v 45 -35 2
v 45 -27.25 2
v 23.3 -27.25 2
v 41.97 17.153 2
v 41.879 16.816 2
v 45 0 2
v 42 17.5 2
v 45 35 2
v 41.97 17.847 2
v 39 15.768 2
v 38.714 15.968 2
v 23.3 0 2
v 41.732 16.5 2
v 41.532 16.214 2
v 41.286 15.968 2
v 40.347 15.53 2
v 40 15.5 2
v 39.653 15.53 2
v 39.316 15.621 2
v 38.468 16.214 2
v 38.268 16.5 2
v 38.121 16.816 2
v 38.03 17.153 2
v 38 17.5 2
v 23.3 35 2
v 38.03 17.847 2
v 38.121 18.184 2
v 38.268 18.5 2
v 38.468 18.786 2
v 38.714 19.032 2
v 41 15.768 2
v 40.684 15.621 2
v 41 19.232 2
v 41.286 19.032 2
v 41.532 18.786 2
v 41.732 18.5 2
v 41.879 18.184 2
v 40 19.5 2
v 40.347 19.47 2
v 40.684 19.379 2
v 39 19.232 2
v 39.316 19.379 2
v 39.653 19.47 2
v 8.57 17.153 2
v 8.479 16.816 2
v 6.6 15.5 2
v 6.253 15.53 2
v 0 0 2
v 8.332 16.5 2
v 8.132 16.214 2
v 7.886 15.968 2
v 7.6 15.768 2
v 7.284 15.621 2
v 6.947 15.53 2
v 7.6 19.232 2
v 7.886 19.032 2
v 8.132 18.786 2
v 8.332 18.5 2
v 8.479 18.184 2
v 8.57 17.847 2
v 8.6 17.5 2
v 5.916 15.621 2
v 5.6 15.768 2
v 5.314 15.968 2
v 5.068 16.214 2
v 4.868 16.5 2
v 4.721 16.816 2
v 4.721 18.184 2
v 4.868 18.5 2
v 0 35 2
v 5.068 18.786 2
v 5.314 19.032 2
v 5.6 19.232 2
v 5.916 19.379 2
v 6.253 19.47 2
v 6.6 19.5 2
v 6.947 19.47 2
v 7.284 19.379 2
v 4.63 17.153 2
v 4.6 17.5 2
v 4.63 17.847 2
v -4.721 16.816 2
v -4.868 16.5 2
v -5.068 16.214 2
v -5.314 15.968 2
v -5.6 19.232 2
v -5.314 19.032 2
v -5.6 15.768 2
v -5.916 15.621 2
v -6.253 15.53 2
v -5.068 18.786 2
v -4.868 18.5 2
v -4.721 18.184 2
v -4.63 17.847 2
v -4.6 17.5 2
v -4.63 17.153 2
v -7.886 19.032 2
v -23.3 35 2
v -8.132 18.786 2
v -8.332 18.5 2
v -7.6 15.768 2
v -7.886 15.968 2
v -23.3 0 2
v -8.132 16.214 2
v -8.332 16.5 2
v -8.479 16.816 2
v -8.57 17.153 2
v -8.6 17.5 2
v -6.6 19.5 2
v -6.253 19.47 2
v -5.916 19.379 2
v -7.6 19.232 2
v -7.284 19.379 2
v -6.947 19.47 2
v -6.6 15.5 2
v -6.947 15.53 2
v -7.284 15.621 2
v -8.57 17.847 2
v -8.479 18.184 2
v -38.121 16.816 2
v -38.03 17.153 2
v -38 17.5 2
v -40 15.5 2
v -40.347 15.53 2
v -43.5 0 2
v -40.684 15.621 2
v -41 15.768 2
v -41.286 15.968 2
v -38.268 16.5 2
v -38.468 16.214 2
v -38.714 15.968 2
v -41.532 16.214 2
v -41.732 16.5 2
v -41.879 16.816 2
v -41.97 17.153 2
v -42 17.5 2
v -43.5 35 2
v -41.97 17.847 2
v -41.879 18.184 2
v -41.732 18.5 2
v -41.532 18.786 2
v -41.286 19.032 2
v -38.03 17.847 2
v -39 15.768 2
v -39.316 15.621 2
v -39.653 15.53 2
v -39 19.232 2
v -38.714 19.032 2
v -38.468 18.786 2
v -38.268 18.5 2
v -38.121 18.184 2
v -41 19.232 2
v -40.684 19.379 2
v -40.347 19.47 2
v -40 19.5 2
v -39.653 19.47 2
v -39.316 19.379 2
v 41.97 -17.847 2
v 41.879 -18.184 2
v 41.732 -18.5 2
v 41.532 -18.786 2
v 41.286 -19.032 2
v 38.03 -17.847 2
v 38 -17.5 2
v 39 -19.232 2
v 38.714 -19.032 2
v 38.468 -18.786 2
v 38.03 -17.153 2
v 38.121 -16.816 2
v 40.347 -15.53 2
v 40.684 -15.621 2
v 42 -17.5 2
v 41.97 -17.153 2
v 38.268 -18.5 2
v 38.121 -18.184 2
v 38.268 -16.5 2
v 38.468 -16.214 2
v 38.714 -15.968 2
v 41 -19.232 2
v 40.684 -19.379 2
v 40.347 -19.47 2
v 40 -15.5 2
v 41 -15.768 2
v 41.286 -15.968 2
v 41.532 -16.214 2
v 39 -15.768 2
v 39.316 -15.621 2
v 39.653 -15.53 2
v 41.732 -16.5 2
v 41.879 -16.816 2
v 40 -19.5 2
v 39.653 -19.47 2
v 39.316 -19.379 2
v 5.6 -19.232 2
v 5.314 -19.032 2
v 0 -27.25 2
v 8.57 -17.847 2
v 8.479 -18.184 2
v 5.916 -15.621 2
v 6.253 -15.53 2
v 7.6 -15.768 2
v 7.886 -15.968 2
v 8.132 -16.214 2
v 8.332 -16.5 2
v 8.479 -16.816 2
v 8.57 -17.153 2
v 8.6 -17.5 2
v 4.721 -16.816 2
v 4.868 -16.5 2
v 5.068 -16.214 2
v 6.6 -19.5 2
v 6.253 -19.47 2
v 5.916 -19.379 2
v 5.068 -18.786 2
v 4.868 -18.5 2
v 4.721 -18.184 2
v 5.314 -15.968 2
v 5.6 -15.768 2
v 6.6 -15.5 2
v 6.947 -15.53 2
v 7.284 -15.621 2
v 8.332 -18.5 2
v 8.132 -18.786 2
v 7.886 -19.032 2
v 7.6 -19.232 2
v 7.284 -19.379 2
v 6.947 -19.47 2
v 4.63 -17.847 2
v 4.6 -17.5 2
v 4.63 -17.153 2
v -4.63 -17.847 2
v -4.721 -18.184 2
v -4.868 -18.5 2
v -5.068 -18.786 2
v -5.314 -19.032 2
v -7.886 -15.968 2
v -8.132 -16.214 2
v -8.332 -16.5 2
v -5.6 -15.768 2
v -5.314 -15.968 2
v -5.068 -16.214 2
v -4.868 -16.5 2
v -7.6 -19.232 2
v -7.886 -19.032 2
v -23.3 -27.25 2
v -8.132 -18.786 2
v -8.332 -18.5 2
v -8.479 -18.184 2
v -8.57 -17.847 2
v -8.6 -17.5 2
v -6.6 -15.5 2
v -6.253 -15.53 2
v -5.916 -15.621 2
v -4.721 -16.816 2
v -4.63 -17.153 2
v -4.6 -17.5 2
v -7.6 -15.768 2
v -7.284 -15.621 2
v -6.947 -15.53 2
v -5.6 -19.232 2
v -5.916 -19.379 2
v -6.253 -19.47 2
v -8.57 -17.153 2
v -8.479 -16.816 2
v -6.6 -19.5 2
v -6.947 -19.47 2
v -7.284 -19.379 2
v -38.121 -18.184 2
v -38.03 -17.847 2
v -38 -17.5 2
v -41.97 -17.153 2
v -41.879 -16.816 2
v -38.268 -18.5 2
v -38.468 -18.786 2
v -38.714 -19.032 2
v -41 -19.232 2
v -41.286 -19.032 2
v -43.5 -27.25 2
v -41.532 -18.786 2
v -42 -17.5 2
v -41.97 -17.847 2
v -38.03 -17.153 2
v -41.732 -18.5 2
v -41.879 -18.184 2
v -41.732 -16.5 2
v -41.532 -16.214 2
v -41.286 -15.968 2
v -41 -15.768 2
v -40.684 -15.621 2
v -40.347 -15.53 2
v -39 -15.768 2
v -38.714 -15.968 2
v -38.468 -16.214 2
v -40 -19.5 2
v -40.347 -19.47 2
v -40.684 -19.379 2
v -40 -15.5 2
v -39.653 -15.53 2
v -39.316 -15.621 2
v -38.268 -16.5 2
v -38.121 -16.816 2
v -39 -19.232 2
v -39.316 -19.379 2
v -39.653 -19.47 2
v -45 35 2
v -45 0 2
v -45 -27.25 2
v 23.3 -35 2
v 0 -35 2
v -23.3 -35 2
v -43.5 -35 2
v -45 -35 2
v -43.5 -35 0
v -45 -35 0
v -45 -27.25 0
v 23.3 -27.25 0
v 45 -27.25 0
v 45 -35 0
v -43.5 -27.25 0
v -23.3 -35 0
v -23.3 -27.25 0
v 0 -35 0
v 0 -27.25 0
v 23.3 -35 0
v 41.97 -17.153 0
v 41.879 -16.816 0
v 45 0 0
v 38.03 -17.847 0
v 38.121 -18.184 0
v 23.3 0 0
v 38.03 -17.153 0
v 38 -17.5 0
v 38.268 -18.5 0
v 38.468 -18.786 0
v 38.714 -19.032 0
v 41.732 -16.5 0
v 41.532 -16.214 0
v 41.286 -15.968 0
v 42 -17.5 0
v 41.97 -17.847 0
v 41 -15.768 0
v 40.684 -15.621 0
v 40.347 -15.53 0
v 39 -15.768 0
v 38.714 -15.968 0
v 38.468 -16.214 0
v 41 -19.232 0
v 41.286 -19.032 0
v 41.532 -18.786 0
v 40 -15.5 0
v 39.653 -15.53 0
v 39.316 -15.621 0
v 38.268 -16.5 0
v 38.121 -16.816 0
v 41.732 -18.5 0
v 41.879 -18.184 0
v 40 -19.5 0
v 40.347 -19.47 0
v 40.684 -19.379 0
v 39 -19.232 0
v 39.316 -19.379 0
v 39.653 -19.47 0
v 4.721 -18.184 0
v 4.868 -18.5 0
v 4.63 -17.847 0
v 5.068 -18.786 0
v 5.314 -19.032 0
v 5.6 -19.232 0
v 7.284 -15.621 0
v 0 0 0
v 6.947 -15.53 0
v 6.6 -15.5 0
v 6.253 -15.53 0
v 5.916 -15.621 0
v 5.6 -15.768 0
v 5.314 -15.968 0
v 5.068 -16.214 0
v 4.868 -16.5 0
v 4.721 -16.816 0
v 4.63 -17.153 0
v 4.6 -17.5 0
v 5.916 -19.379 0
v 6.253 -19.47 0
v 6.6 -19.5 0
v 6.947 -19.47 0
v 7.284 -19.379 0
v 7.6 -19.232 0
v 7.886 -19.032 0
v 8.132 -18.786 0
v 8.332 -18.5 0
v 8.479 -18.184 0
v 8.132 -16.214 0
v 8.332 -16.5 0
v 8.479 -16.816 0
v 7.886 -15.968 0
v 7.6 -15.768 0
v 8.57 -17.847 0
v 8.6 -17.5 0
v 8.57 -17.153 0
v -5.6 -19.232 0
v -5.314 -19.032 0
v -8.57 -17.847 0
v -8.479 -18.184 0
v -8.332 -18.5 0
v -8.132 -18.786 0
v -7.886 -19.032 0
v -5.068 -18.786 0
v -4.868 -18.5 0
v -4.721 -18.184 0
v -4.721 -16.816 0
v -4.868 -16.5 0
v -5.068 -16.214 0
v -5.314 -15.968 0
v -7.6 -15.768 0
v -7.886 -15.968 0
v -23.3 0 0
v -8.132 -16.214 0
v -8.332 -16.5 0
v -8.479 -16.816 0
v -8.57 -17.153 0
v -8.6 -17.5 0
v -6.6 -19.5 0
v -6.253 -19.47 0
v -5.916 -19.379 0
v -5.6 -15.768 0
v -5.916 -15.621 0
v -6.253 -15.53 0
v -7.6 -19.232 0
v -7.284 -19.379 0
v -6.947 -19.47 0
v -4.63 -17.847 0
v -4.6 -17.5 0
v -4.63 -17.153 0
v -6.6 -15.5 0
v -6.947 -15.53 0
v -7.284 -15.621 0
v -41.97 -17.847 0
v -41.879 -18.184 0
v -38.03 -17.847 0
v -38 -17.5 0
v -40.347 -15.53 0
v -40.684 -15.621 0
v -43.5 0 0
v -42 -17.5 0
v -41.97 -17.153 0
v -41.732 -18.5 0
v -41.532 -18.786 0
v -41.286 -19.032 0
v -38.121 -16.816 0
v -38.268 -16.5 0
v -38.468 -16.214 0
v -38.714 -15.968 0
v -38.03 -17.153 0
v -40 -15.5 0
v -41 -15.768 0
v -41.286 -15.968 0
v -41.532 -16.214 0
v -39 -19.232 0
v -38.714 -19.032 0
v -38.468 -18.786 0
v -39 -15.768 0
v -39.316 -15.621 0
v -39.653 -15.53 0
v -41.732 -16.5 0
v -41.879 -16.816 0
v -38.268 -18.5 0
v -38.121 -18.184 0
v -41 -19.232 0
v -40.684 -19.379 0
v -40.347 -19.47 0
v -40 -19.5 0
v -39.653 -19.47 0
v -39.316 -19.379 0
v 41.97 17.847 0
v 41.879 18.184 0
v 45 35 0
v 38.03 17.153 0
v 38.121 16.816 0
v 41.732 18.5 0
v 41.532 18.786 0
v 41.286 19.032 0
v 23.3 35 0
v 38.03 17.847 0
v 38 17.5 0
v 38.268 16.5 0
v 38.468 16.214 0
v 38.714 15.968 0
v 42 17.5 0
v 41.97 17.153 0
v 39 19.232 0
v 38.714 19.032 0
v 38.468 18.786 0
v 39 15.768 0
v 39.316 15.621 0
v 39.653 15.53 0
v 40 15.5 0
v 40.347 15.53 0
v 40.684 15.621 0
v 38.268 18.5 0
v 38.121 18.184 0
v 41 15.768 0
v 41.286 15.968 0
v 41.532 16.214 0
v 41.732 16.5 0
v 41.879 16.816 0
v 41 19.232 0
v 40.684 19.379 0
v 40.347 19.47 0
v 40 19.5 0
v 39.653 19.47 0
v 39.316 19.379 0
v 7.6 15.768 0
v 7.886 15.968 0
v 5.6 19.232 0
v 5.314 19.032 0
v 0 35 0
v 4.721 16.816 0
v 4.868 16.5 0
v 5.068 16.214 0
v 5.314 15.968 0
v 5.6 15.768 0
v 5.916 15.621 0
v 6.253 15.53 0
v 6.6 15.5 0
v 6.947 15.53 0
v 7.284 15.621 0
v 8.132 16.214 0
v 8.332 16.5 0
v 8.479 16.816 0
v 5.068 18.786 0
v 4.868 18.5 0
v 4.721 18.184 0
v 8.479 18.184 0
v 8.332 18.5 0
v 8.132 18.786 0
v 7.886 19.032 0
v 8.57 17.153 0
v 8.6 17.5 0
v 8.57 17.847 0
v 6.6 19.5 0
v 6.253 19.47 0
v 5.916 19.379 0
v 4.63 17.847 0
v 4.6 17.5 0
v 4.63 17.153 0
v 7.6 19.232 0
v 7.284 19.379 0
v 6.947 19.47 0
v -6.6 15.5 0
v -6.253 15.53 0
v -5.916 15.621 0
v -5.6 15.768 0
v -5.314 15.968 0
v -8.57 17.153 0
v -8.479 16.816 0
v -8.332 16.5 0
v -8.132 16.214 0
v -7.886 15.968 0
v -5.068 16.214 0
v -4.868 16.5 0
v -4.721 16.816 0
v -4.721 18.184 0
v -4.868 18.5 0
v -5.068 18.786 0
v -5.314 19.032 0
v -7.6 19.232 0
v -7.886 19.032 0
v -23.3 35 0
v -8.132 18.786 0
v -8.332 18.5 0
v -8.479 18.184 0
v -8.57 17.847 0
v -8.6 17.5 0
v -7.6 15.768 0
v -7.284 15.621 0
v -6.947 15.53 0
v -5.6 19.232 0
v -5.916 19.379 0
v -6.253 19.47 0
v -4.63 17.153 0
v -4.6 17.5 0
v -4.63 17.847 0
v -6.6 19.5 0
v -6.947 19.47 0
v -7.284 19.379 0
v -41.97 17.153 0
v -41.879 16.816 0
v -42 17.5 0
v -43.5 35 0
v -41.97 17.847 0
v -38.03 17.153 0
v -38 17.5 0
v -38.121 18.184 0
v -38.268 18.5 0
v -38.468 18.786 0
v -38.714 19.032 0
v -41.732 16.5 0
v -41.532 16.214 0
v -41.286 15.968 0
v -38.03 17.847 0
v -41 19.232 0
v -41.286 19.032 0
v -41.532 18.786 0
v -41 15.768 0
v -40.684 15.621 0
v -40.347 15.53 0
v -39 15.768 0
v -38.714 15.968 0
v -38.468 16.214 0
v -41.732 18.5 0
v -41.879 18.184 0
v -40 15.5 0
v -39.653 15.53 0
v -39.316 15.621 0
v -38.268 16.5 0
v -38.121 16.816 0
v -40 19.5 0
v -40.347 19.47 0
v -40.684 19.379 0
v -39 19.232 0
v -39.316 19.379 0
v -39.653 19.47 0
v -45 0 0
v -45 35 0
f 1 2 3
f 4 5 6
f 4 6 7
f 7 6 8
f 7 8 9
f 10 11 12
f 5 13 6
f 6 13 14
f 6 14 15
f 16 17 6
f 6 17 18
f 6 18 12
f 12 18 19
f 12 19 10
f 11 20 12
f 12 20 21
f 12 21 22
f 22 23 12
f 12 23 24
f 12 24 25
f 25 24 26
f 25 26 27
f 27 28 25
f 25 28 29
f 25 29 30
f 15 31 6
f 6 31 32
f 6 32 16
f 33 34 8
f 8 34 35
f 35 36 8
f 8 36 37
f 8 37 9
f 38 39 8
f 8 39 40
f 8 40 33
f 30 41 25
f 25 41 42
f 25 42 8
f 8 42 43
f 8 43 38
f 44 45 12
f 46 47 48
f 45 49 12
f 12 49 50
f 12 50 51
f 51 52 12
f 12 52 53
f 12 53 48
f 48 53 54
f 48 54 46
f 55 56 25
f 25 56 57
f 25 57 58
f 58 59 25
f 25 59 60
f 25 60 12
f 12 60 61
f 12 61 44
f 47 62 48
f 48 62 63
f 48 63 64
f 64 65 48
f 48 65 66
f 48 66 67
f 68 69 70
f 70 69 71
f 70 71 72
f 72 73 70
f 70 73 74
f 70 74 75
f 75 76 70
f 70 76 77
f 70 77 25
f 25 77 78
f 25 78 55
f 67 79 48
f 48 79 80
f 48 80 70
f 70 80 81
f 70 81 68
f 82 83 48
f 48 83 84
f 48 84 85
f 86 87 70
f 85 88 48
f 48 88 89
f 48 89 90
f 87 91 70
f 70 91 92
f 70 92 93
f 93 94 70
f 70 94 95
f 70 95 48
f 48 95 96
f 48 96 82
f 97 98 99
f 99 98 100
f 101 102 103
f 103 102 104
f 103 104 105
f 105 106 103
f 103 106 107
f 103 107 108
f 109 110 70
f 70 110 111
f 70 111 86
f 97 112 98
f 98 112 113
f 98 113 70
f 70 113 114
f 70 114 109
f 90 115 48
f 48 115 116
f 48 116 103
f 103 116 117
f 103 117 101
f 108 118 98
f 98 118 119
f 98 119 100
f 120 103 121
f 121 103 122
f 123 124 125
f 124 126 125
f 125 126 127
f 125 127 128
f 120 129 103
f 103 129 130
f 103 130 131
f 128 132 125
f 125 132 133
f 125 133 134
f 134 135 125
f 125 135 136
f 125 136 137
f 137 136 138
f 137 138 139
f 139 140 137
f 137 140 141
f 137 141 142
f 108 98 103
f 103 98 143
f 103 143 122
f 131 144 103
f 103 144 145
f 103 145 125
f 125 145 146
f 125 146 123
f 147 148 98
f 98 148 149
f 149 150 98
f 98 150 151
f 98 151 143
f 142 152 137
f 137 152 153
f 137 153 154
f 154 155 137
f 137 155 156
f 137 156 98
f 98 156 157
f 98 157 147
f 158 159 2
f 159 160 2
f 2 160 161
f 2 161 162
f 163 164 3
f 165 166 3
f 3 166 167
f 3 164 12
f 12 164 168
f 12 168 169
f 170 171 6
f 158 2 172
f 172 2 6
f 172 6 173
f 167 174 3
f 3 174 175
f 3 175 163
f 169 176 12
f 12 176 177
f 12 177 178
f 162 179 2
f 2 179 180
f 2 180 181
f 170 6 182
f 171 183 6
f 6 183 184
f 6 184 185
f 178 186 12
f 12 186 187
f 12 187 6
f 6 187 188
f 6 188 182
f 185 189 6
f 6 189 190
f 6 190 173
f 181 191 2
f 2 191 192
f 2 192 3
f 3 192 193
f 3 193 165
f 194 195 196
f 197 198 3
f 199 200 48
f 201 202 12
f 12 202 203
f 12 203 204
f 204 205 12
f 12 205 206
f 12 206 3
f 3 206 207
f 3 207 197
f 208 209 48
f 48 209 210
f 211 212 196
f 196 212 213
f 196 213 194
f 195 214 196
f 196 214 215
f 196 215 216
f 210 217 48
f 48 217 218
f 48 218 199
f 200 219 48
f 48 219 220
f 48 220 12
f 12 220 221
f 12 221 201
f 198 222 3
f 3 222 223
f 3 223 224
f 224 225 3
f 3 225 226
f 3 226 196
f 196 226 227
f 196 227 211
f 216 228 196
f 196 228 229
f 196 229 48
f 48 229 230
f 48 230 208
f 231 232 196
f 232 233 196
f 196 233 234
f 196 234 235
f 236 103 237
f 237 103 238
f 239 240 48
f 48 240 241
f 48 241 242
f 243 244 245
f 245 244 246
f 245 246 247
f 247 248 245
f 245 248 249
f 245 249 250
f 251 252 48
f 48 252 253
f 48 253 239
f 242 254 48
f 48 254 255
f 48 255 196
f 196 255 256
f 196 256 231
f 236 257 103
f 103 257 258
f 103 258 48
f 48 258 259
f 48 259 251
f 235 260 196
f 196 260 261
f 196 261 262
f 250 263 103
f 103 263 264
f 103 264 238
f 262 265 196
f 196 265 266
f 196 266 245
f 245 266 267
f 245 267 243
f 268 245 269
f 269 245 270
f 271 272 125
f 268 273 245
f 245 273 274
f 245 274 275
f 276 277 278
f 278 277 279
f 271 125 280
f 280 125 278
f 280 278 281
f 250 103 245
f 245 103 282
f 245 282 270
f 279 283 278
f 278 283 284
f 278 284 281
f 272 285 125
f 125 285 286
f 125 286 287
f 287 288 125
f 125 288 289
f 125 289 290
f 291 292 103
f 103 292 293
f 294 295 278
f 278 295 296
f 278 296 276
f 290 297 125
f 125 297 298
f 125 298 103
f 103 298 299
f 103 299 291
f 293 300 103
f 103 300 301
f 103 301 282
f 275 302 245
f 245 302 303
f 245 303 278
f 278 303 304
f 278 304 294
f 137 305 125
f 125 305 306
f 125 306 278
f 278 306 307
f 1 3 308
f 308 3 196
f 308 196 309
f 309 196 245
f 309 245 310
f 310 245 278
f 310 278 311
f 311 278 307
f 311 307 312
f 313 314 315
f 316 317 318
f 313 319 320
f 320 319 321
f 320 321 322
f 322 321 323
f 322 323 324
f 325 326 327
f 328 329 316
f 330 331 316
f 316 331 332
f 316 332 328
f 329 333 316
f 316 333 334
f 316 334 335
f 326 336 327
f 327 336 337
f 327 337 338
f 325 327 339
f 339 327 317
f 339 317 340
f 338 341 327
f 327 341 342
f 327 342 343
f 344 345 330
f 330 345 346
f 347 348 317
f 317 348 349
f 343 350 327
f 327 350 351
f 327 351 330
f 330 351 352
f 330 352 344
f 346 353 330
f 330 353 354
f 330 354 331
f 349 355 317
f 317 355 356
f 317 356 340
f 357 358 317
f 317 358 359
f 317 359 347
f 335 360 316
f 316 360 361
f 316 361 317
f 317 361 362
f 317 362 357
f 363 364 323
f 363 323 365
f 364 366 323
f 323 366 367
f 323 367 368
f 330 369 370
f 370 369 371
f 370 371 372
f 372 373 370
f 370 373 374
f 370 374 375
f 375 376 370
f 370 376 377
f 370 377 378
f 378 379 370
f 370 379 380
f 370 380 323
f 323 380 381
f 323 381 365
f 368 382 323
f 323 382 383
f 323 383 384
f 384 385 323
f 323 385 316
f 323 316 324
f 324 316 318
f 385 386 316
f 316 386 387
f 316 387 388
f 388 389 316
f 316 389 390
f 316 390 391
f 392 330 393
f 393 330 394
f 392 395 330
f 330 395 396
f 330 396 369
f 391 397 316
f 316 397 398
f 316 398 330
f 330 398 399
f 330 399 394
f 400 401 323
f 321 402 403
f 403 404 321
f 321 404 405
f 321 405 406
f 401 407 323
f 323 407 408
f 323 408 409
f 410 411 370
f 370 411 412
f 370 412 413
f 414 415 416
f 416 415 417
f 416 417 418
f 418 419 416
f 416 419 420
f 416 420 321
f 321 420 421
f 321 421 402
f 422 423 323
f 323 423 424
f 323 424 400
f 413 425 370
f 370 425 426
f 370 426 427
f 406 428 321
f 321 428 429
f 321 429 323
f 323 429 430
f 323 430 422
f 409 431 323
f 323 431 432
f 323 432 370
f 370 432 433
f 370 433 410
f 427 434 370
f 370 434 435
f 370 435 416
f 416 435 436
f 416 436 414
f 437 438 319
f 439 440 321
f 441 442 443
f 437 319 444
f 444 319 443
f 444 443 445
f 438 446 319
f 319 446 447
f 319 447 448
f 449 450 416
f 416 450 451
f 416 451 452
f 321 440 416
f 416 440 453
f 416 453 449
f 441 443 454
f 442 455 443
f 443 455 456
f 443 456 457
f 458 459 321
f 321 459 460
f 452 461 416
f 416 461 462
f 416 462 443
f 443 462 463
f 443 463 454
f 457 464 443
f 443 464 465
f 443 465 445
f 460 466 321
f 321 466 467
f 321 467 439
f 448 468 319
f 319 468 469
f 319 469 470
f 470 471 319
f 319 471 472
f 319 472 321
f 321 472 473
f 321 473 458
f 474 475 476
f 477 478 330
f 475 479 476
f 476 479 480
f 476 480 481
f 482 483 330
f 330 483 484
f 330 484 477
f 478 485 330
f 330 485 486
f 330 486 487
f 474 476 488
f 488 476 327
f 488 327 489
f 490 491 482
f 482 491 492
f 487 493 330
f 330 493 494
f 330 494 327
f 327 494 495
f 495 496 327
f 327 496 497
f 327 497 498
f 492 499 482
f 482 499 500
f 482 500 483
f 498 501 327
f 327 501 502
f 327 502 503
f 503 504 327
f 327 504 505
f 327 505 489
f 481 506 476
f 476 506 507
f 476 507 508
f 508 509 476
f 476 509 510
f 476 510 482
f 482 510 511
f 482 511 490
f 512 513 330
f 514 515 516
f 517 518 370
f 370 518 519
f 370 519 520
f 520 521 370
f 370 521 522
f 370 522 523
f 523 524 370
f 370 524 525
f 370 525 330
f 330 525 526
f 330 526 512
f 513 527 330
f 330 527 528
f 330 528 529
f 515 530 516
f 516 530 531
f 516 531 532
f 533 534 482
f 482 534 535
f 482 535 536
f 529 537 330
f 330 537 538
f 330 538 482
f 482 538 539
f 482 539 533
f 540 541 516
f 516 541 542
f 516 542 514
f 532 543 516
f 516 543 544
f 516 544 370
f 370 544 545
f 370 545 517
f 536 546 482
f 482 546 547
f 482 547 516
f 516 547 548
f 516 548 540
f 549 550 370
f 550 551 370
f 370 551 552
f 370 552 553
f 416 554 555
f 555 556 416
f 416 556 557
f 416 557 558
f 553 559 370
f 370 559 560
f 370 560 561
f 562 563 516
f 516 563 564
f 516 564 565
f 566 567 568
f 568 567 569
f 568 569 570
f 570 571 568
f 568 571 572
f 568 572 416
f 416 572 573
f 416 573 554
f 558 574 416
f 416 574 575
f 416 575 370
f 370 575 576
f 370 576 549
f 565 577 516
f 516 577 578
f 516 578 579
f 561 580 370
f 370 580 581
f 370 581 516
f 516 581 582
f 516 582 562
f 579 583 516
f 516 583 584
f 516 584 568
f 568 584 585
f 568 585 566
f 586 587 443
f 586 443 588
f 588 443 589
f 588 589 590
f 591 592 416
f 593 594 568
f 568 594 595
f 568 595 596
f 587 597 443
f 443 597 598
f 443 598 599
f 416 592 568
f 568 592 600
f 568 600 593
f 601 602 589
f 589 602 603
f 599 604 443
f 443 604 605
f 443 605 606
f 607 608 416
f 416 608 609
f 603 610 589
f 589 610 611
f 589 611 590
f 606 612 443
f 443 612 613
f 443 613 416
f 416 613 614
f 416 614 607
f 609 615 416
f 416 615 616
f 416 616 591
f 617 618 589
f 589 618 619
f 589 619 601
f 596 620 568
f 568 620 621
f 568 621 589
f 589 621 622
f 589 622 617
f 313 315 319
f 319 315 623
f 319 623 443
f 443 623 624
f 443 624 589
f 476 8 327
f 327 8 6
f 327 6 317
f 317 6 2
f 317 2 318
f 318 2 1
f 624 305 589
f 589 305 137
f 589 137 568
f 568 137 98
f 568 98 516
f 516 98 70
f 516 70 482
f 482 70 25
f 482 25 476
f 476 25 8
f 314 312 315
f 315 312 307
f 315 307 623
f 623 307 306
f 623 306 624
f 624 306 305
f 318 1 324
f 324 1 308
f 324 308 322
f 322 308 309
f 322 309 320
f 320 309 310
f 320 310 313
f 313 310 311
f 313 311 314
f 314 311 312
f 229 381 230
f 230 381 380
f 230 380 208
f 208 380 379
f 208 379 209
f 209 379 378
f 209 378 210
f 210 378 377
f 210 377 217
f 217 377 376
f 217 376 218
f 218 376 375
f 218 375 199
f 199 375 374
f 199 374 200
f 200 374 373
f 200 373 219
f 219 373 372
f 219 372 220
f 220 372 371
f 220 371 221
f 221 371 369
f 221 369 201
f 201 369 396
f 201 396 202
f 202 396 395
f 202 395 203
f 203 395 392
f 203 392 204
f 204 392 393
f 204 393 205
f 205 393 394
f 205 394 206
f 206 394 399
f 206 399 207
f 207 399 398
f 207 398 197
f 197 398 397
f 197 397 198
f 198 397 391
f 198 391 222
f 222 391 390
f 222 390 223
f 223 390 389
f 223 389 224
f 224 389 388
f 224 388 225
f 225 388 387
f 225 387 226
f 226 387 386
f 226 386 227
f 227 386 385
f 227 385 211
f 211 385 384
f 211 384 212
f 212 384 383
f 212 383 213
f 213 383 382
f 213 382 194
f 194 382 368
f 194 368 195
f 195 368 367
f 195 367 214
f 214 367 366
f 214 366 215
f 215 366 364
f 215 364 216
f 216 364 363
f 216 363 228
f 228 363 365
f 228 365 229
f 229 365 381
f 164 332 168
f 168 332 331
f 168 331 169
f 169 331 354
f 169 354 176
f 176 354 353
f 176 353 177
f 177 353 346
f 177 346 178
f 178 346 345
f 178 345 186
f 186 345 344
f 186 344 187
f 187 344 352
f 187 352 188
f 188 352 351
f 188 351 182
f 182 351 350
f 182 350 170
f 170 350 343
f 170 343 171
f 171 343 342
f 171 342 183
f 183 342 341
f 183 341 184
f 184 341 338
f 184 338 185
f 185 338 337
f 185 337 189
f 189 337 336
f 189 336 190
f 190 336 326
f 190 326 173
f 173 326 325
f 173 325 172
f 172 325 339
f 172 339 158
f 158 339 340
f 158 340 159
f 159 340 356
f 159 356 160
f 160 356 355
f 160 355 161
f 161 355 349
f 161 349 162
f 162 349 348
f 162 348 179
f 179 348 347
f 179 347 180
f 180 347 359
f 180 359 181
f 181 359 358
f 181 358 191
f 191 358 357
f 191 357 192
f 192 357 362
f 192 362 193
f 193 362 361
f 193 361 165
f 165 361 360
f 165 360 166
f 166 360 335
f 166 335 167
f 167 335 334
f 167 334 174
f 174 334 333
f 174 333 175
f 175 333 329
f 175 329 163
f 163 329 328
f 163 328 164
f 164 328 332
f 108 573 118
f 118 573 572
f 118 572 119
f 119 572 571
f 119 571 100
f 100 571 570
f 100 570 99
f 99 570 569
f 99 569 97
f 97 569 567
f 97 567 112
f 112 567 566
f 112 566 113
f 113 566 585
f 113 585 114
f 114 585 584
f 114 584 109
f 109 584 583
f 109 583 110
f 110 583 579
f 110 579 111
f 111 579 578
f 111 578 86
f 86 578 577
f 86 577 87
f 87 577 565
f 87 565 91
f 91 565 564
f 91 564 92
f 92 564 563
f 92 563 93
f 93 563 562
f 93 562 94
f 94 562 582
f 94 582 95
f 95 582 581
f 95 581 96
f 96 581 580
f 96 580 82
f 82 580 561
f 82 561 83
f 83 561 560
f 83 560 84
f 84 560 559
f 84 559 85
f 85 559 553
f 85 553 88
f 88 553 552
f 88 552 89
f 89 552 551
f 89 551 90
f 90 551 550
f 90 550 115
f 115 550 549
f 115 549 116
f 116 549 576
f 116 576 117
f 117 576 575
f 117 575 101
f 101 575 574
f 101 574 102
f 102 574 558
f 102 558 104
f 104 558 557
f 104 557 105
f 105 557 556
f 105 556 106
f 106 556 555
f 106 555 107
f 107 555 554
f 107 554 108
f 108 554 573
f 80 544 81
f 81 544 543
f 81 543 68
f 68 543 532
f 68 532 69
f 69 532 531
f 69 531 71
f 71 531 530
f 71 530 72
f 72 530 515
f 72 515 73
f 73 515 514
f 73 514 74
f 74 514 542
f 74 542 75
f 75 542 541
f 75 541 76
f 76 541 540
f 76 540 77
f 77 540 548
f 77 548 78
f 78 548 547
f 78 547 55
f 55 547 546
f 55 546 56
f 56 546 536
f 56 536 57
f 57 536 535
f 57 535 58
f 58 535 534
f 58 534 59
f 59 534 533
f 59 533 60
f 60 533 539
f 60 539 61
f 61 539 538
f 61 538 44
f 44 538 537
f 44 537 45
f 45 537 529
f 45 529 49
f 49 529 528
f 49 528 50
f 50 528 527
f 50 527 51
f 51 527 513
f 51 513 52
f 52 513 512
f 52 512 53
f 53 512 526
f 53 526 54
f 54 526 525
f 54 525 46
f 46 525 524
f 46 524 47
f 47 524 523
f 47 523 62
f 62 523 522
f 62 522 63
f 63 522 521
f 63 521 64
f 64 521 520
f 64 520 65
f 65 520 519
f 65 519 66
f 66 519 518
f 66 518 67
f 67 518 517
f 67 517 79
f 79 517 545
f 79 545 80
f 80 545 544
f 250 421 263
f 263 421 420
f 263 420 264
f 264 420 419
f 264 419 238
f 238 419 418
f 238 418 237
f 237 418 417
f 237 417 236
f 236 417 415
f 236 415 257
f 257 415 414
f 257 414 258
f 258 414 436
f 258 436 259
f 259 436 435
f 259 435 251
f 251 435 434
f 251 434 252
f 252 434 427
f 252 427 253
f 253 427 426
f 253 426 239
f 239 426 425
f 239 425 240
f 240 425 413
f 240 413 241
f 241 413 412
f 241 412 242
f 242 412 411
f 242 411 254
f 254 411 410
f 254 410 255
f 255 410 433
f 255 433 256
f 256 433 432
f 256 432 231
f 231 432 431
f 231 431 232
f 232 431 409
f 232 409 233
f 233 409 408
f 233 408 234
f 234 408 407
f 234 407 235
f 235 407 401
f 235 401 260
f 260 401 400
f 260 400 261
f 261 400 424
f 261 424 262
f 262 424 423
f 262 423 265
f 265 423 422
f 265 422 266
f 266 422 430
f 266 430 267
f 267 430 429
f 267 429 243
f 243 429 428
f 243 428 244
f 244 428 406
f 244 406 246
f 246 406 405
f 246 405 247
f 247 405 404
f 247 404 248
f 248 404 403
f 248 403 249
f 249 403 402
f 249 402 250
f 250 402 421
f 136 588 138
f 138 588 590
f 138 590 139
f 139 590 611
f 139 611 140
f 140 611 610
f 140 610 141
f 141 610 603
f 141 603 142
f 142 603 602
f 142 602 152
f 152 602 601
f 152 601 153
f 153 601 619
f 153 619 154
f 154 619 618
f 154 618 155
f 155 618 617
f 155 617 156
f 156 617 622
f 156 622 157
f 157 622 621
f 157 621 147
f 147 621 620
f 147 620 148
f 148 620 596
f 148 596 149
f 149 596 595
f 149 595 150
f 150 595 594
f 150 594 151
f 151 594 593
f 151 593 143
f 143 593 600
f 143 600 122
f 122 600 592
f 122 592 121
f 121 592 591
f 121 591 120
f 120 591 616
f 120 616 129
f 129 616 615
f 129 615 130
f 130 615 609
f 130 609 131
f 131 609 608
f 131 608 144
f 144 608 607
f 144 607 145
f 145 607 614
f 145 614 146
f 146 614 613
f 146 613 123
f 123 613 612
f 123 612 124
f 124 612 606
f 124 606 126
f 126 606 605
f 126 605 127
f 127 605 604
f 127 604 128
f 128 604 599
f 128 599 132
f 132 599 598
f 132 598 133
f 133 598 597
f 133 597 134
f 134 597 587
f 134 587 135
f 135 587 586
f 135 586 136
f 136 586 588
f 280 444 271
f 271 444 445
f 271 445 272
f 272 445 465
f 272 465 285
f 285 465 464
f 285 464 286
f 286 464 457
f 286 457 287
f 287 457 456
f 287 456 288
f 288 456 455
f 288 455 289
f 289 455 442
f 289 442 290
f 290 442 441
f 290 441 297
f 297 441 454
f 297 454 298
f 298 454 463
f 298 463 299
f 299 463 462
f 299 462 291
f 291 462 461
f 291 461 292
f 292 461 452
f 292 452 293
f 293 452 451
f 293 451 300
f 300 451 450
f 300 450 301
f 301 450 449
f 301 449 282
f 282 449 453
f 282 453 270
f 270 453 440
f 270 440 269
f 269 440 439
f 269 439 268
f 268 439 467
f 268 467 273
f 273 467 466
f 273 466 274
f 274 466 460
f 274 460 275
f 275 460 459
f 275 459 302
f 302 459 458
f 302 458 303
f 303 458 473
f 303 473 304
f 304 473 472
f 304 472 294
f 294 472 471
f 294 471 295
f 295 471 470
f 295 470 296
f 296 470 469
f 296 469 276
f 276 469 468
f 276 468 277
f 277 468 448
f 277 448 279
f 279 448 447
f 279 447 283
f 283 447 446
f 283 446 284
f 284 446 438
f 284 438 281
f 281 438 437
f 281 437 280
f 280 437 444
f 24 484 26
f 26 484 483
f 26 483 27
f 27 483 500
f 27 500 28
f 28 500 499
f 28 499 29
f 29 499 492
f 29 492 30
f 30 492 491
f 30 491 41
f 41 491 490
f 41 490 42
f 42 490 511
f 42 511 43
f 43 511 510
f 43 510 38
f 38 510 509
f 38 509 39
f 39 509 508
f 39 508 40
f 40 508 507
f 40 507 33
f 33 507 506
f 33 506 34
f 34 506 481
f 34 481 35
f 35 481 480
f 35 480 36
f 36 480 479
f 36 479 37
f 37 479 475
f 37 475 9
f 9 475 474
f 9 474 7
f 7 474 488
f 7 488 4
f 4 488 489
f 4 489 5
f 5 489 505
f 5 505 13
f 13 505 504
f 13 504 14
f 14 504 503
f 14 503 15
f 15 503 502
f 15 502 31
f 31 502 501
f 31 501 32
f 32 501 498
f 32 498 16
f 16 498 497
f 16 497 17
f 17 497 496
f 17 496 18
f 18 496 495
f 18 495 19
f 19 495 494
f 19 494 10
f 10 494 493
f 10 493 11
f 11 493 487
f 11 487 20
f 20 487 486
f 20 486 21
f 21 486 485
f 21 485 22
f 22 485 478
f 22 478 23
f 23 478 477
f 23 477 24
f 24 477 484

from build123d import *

# Parameters (mm, degrees)
SKETCH1_W           = 90
SKETCH1_H           = 70
SKETCH1_R           = 2
BOSS_EXTRUDE1_DEPTH = 2


with BuildPart() as part:
    # Sketch1 → Boss-Extrude1 (new body)
    with BuildSketch(Plane.XY):
        Rectangle(SKETCH1_W, SKETCH1_H)
        with Locations((-6.6, 17.5)):
            Circle(SKETCH1_R, mode=Mode.SUBTRACT)
        with Locations((6.6, 17.5)):
            Circle(SKETCH1_R, mode=Mode.SUBTRACT)
        with Locations((-6.6, -17.5)):
            Circle(SKETCH1_R, mode=Mode.SUBTRACT)
        with Locations((-40, 17.5)):
            Circle(SKETCH1_R, mode=Mode.SUBTRACT)
        with Locations((-40, -17.5)):
            Circle(SKETCH1_R, mode=Mode.SUBTRACT)
        with Locations((40, 17.5)):
            Circle(SKETCH1_R, mode=Mode.SUBTRACT)
        with Locations((6.6, -17.5)):
            Circle(SKETCH1_R, mode=Mode.SUBTRACT)
        with Locations((40, -17.5)):
            Circle(SKETCH1_R, mode=Mode.SUBTRACT)
    extrude(amount=BOSS_EXTRUDE1_DEPTH)


solid = part.part
